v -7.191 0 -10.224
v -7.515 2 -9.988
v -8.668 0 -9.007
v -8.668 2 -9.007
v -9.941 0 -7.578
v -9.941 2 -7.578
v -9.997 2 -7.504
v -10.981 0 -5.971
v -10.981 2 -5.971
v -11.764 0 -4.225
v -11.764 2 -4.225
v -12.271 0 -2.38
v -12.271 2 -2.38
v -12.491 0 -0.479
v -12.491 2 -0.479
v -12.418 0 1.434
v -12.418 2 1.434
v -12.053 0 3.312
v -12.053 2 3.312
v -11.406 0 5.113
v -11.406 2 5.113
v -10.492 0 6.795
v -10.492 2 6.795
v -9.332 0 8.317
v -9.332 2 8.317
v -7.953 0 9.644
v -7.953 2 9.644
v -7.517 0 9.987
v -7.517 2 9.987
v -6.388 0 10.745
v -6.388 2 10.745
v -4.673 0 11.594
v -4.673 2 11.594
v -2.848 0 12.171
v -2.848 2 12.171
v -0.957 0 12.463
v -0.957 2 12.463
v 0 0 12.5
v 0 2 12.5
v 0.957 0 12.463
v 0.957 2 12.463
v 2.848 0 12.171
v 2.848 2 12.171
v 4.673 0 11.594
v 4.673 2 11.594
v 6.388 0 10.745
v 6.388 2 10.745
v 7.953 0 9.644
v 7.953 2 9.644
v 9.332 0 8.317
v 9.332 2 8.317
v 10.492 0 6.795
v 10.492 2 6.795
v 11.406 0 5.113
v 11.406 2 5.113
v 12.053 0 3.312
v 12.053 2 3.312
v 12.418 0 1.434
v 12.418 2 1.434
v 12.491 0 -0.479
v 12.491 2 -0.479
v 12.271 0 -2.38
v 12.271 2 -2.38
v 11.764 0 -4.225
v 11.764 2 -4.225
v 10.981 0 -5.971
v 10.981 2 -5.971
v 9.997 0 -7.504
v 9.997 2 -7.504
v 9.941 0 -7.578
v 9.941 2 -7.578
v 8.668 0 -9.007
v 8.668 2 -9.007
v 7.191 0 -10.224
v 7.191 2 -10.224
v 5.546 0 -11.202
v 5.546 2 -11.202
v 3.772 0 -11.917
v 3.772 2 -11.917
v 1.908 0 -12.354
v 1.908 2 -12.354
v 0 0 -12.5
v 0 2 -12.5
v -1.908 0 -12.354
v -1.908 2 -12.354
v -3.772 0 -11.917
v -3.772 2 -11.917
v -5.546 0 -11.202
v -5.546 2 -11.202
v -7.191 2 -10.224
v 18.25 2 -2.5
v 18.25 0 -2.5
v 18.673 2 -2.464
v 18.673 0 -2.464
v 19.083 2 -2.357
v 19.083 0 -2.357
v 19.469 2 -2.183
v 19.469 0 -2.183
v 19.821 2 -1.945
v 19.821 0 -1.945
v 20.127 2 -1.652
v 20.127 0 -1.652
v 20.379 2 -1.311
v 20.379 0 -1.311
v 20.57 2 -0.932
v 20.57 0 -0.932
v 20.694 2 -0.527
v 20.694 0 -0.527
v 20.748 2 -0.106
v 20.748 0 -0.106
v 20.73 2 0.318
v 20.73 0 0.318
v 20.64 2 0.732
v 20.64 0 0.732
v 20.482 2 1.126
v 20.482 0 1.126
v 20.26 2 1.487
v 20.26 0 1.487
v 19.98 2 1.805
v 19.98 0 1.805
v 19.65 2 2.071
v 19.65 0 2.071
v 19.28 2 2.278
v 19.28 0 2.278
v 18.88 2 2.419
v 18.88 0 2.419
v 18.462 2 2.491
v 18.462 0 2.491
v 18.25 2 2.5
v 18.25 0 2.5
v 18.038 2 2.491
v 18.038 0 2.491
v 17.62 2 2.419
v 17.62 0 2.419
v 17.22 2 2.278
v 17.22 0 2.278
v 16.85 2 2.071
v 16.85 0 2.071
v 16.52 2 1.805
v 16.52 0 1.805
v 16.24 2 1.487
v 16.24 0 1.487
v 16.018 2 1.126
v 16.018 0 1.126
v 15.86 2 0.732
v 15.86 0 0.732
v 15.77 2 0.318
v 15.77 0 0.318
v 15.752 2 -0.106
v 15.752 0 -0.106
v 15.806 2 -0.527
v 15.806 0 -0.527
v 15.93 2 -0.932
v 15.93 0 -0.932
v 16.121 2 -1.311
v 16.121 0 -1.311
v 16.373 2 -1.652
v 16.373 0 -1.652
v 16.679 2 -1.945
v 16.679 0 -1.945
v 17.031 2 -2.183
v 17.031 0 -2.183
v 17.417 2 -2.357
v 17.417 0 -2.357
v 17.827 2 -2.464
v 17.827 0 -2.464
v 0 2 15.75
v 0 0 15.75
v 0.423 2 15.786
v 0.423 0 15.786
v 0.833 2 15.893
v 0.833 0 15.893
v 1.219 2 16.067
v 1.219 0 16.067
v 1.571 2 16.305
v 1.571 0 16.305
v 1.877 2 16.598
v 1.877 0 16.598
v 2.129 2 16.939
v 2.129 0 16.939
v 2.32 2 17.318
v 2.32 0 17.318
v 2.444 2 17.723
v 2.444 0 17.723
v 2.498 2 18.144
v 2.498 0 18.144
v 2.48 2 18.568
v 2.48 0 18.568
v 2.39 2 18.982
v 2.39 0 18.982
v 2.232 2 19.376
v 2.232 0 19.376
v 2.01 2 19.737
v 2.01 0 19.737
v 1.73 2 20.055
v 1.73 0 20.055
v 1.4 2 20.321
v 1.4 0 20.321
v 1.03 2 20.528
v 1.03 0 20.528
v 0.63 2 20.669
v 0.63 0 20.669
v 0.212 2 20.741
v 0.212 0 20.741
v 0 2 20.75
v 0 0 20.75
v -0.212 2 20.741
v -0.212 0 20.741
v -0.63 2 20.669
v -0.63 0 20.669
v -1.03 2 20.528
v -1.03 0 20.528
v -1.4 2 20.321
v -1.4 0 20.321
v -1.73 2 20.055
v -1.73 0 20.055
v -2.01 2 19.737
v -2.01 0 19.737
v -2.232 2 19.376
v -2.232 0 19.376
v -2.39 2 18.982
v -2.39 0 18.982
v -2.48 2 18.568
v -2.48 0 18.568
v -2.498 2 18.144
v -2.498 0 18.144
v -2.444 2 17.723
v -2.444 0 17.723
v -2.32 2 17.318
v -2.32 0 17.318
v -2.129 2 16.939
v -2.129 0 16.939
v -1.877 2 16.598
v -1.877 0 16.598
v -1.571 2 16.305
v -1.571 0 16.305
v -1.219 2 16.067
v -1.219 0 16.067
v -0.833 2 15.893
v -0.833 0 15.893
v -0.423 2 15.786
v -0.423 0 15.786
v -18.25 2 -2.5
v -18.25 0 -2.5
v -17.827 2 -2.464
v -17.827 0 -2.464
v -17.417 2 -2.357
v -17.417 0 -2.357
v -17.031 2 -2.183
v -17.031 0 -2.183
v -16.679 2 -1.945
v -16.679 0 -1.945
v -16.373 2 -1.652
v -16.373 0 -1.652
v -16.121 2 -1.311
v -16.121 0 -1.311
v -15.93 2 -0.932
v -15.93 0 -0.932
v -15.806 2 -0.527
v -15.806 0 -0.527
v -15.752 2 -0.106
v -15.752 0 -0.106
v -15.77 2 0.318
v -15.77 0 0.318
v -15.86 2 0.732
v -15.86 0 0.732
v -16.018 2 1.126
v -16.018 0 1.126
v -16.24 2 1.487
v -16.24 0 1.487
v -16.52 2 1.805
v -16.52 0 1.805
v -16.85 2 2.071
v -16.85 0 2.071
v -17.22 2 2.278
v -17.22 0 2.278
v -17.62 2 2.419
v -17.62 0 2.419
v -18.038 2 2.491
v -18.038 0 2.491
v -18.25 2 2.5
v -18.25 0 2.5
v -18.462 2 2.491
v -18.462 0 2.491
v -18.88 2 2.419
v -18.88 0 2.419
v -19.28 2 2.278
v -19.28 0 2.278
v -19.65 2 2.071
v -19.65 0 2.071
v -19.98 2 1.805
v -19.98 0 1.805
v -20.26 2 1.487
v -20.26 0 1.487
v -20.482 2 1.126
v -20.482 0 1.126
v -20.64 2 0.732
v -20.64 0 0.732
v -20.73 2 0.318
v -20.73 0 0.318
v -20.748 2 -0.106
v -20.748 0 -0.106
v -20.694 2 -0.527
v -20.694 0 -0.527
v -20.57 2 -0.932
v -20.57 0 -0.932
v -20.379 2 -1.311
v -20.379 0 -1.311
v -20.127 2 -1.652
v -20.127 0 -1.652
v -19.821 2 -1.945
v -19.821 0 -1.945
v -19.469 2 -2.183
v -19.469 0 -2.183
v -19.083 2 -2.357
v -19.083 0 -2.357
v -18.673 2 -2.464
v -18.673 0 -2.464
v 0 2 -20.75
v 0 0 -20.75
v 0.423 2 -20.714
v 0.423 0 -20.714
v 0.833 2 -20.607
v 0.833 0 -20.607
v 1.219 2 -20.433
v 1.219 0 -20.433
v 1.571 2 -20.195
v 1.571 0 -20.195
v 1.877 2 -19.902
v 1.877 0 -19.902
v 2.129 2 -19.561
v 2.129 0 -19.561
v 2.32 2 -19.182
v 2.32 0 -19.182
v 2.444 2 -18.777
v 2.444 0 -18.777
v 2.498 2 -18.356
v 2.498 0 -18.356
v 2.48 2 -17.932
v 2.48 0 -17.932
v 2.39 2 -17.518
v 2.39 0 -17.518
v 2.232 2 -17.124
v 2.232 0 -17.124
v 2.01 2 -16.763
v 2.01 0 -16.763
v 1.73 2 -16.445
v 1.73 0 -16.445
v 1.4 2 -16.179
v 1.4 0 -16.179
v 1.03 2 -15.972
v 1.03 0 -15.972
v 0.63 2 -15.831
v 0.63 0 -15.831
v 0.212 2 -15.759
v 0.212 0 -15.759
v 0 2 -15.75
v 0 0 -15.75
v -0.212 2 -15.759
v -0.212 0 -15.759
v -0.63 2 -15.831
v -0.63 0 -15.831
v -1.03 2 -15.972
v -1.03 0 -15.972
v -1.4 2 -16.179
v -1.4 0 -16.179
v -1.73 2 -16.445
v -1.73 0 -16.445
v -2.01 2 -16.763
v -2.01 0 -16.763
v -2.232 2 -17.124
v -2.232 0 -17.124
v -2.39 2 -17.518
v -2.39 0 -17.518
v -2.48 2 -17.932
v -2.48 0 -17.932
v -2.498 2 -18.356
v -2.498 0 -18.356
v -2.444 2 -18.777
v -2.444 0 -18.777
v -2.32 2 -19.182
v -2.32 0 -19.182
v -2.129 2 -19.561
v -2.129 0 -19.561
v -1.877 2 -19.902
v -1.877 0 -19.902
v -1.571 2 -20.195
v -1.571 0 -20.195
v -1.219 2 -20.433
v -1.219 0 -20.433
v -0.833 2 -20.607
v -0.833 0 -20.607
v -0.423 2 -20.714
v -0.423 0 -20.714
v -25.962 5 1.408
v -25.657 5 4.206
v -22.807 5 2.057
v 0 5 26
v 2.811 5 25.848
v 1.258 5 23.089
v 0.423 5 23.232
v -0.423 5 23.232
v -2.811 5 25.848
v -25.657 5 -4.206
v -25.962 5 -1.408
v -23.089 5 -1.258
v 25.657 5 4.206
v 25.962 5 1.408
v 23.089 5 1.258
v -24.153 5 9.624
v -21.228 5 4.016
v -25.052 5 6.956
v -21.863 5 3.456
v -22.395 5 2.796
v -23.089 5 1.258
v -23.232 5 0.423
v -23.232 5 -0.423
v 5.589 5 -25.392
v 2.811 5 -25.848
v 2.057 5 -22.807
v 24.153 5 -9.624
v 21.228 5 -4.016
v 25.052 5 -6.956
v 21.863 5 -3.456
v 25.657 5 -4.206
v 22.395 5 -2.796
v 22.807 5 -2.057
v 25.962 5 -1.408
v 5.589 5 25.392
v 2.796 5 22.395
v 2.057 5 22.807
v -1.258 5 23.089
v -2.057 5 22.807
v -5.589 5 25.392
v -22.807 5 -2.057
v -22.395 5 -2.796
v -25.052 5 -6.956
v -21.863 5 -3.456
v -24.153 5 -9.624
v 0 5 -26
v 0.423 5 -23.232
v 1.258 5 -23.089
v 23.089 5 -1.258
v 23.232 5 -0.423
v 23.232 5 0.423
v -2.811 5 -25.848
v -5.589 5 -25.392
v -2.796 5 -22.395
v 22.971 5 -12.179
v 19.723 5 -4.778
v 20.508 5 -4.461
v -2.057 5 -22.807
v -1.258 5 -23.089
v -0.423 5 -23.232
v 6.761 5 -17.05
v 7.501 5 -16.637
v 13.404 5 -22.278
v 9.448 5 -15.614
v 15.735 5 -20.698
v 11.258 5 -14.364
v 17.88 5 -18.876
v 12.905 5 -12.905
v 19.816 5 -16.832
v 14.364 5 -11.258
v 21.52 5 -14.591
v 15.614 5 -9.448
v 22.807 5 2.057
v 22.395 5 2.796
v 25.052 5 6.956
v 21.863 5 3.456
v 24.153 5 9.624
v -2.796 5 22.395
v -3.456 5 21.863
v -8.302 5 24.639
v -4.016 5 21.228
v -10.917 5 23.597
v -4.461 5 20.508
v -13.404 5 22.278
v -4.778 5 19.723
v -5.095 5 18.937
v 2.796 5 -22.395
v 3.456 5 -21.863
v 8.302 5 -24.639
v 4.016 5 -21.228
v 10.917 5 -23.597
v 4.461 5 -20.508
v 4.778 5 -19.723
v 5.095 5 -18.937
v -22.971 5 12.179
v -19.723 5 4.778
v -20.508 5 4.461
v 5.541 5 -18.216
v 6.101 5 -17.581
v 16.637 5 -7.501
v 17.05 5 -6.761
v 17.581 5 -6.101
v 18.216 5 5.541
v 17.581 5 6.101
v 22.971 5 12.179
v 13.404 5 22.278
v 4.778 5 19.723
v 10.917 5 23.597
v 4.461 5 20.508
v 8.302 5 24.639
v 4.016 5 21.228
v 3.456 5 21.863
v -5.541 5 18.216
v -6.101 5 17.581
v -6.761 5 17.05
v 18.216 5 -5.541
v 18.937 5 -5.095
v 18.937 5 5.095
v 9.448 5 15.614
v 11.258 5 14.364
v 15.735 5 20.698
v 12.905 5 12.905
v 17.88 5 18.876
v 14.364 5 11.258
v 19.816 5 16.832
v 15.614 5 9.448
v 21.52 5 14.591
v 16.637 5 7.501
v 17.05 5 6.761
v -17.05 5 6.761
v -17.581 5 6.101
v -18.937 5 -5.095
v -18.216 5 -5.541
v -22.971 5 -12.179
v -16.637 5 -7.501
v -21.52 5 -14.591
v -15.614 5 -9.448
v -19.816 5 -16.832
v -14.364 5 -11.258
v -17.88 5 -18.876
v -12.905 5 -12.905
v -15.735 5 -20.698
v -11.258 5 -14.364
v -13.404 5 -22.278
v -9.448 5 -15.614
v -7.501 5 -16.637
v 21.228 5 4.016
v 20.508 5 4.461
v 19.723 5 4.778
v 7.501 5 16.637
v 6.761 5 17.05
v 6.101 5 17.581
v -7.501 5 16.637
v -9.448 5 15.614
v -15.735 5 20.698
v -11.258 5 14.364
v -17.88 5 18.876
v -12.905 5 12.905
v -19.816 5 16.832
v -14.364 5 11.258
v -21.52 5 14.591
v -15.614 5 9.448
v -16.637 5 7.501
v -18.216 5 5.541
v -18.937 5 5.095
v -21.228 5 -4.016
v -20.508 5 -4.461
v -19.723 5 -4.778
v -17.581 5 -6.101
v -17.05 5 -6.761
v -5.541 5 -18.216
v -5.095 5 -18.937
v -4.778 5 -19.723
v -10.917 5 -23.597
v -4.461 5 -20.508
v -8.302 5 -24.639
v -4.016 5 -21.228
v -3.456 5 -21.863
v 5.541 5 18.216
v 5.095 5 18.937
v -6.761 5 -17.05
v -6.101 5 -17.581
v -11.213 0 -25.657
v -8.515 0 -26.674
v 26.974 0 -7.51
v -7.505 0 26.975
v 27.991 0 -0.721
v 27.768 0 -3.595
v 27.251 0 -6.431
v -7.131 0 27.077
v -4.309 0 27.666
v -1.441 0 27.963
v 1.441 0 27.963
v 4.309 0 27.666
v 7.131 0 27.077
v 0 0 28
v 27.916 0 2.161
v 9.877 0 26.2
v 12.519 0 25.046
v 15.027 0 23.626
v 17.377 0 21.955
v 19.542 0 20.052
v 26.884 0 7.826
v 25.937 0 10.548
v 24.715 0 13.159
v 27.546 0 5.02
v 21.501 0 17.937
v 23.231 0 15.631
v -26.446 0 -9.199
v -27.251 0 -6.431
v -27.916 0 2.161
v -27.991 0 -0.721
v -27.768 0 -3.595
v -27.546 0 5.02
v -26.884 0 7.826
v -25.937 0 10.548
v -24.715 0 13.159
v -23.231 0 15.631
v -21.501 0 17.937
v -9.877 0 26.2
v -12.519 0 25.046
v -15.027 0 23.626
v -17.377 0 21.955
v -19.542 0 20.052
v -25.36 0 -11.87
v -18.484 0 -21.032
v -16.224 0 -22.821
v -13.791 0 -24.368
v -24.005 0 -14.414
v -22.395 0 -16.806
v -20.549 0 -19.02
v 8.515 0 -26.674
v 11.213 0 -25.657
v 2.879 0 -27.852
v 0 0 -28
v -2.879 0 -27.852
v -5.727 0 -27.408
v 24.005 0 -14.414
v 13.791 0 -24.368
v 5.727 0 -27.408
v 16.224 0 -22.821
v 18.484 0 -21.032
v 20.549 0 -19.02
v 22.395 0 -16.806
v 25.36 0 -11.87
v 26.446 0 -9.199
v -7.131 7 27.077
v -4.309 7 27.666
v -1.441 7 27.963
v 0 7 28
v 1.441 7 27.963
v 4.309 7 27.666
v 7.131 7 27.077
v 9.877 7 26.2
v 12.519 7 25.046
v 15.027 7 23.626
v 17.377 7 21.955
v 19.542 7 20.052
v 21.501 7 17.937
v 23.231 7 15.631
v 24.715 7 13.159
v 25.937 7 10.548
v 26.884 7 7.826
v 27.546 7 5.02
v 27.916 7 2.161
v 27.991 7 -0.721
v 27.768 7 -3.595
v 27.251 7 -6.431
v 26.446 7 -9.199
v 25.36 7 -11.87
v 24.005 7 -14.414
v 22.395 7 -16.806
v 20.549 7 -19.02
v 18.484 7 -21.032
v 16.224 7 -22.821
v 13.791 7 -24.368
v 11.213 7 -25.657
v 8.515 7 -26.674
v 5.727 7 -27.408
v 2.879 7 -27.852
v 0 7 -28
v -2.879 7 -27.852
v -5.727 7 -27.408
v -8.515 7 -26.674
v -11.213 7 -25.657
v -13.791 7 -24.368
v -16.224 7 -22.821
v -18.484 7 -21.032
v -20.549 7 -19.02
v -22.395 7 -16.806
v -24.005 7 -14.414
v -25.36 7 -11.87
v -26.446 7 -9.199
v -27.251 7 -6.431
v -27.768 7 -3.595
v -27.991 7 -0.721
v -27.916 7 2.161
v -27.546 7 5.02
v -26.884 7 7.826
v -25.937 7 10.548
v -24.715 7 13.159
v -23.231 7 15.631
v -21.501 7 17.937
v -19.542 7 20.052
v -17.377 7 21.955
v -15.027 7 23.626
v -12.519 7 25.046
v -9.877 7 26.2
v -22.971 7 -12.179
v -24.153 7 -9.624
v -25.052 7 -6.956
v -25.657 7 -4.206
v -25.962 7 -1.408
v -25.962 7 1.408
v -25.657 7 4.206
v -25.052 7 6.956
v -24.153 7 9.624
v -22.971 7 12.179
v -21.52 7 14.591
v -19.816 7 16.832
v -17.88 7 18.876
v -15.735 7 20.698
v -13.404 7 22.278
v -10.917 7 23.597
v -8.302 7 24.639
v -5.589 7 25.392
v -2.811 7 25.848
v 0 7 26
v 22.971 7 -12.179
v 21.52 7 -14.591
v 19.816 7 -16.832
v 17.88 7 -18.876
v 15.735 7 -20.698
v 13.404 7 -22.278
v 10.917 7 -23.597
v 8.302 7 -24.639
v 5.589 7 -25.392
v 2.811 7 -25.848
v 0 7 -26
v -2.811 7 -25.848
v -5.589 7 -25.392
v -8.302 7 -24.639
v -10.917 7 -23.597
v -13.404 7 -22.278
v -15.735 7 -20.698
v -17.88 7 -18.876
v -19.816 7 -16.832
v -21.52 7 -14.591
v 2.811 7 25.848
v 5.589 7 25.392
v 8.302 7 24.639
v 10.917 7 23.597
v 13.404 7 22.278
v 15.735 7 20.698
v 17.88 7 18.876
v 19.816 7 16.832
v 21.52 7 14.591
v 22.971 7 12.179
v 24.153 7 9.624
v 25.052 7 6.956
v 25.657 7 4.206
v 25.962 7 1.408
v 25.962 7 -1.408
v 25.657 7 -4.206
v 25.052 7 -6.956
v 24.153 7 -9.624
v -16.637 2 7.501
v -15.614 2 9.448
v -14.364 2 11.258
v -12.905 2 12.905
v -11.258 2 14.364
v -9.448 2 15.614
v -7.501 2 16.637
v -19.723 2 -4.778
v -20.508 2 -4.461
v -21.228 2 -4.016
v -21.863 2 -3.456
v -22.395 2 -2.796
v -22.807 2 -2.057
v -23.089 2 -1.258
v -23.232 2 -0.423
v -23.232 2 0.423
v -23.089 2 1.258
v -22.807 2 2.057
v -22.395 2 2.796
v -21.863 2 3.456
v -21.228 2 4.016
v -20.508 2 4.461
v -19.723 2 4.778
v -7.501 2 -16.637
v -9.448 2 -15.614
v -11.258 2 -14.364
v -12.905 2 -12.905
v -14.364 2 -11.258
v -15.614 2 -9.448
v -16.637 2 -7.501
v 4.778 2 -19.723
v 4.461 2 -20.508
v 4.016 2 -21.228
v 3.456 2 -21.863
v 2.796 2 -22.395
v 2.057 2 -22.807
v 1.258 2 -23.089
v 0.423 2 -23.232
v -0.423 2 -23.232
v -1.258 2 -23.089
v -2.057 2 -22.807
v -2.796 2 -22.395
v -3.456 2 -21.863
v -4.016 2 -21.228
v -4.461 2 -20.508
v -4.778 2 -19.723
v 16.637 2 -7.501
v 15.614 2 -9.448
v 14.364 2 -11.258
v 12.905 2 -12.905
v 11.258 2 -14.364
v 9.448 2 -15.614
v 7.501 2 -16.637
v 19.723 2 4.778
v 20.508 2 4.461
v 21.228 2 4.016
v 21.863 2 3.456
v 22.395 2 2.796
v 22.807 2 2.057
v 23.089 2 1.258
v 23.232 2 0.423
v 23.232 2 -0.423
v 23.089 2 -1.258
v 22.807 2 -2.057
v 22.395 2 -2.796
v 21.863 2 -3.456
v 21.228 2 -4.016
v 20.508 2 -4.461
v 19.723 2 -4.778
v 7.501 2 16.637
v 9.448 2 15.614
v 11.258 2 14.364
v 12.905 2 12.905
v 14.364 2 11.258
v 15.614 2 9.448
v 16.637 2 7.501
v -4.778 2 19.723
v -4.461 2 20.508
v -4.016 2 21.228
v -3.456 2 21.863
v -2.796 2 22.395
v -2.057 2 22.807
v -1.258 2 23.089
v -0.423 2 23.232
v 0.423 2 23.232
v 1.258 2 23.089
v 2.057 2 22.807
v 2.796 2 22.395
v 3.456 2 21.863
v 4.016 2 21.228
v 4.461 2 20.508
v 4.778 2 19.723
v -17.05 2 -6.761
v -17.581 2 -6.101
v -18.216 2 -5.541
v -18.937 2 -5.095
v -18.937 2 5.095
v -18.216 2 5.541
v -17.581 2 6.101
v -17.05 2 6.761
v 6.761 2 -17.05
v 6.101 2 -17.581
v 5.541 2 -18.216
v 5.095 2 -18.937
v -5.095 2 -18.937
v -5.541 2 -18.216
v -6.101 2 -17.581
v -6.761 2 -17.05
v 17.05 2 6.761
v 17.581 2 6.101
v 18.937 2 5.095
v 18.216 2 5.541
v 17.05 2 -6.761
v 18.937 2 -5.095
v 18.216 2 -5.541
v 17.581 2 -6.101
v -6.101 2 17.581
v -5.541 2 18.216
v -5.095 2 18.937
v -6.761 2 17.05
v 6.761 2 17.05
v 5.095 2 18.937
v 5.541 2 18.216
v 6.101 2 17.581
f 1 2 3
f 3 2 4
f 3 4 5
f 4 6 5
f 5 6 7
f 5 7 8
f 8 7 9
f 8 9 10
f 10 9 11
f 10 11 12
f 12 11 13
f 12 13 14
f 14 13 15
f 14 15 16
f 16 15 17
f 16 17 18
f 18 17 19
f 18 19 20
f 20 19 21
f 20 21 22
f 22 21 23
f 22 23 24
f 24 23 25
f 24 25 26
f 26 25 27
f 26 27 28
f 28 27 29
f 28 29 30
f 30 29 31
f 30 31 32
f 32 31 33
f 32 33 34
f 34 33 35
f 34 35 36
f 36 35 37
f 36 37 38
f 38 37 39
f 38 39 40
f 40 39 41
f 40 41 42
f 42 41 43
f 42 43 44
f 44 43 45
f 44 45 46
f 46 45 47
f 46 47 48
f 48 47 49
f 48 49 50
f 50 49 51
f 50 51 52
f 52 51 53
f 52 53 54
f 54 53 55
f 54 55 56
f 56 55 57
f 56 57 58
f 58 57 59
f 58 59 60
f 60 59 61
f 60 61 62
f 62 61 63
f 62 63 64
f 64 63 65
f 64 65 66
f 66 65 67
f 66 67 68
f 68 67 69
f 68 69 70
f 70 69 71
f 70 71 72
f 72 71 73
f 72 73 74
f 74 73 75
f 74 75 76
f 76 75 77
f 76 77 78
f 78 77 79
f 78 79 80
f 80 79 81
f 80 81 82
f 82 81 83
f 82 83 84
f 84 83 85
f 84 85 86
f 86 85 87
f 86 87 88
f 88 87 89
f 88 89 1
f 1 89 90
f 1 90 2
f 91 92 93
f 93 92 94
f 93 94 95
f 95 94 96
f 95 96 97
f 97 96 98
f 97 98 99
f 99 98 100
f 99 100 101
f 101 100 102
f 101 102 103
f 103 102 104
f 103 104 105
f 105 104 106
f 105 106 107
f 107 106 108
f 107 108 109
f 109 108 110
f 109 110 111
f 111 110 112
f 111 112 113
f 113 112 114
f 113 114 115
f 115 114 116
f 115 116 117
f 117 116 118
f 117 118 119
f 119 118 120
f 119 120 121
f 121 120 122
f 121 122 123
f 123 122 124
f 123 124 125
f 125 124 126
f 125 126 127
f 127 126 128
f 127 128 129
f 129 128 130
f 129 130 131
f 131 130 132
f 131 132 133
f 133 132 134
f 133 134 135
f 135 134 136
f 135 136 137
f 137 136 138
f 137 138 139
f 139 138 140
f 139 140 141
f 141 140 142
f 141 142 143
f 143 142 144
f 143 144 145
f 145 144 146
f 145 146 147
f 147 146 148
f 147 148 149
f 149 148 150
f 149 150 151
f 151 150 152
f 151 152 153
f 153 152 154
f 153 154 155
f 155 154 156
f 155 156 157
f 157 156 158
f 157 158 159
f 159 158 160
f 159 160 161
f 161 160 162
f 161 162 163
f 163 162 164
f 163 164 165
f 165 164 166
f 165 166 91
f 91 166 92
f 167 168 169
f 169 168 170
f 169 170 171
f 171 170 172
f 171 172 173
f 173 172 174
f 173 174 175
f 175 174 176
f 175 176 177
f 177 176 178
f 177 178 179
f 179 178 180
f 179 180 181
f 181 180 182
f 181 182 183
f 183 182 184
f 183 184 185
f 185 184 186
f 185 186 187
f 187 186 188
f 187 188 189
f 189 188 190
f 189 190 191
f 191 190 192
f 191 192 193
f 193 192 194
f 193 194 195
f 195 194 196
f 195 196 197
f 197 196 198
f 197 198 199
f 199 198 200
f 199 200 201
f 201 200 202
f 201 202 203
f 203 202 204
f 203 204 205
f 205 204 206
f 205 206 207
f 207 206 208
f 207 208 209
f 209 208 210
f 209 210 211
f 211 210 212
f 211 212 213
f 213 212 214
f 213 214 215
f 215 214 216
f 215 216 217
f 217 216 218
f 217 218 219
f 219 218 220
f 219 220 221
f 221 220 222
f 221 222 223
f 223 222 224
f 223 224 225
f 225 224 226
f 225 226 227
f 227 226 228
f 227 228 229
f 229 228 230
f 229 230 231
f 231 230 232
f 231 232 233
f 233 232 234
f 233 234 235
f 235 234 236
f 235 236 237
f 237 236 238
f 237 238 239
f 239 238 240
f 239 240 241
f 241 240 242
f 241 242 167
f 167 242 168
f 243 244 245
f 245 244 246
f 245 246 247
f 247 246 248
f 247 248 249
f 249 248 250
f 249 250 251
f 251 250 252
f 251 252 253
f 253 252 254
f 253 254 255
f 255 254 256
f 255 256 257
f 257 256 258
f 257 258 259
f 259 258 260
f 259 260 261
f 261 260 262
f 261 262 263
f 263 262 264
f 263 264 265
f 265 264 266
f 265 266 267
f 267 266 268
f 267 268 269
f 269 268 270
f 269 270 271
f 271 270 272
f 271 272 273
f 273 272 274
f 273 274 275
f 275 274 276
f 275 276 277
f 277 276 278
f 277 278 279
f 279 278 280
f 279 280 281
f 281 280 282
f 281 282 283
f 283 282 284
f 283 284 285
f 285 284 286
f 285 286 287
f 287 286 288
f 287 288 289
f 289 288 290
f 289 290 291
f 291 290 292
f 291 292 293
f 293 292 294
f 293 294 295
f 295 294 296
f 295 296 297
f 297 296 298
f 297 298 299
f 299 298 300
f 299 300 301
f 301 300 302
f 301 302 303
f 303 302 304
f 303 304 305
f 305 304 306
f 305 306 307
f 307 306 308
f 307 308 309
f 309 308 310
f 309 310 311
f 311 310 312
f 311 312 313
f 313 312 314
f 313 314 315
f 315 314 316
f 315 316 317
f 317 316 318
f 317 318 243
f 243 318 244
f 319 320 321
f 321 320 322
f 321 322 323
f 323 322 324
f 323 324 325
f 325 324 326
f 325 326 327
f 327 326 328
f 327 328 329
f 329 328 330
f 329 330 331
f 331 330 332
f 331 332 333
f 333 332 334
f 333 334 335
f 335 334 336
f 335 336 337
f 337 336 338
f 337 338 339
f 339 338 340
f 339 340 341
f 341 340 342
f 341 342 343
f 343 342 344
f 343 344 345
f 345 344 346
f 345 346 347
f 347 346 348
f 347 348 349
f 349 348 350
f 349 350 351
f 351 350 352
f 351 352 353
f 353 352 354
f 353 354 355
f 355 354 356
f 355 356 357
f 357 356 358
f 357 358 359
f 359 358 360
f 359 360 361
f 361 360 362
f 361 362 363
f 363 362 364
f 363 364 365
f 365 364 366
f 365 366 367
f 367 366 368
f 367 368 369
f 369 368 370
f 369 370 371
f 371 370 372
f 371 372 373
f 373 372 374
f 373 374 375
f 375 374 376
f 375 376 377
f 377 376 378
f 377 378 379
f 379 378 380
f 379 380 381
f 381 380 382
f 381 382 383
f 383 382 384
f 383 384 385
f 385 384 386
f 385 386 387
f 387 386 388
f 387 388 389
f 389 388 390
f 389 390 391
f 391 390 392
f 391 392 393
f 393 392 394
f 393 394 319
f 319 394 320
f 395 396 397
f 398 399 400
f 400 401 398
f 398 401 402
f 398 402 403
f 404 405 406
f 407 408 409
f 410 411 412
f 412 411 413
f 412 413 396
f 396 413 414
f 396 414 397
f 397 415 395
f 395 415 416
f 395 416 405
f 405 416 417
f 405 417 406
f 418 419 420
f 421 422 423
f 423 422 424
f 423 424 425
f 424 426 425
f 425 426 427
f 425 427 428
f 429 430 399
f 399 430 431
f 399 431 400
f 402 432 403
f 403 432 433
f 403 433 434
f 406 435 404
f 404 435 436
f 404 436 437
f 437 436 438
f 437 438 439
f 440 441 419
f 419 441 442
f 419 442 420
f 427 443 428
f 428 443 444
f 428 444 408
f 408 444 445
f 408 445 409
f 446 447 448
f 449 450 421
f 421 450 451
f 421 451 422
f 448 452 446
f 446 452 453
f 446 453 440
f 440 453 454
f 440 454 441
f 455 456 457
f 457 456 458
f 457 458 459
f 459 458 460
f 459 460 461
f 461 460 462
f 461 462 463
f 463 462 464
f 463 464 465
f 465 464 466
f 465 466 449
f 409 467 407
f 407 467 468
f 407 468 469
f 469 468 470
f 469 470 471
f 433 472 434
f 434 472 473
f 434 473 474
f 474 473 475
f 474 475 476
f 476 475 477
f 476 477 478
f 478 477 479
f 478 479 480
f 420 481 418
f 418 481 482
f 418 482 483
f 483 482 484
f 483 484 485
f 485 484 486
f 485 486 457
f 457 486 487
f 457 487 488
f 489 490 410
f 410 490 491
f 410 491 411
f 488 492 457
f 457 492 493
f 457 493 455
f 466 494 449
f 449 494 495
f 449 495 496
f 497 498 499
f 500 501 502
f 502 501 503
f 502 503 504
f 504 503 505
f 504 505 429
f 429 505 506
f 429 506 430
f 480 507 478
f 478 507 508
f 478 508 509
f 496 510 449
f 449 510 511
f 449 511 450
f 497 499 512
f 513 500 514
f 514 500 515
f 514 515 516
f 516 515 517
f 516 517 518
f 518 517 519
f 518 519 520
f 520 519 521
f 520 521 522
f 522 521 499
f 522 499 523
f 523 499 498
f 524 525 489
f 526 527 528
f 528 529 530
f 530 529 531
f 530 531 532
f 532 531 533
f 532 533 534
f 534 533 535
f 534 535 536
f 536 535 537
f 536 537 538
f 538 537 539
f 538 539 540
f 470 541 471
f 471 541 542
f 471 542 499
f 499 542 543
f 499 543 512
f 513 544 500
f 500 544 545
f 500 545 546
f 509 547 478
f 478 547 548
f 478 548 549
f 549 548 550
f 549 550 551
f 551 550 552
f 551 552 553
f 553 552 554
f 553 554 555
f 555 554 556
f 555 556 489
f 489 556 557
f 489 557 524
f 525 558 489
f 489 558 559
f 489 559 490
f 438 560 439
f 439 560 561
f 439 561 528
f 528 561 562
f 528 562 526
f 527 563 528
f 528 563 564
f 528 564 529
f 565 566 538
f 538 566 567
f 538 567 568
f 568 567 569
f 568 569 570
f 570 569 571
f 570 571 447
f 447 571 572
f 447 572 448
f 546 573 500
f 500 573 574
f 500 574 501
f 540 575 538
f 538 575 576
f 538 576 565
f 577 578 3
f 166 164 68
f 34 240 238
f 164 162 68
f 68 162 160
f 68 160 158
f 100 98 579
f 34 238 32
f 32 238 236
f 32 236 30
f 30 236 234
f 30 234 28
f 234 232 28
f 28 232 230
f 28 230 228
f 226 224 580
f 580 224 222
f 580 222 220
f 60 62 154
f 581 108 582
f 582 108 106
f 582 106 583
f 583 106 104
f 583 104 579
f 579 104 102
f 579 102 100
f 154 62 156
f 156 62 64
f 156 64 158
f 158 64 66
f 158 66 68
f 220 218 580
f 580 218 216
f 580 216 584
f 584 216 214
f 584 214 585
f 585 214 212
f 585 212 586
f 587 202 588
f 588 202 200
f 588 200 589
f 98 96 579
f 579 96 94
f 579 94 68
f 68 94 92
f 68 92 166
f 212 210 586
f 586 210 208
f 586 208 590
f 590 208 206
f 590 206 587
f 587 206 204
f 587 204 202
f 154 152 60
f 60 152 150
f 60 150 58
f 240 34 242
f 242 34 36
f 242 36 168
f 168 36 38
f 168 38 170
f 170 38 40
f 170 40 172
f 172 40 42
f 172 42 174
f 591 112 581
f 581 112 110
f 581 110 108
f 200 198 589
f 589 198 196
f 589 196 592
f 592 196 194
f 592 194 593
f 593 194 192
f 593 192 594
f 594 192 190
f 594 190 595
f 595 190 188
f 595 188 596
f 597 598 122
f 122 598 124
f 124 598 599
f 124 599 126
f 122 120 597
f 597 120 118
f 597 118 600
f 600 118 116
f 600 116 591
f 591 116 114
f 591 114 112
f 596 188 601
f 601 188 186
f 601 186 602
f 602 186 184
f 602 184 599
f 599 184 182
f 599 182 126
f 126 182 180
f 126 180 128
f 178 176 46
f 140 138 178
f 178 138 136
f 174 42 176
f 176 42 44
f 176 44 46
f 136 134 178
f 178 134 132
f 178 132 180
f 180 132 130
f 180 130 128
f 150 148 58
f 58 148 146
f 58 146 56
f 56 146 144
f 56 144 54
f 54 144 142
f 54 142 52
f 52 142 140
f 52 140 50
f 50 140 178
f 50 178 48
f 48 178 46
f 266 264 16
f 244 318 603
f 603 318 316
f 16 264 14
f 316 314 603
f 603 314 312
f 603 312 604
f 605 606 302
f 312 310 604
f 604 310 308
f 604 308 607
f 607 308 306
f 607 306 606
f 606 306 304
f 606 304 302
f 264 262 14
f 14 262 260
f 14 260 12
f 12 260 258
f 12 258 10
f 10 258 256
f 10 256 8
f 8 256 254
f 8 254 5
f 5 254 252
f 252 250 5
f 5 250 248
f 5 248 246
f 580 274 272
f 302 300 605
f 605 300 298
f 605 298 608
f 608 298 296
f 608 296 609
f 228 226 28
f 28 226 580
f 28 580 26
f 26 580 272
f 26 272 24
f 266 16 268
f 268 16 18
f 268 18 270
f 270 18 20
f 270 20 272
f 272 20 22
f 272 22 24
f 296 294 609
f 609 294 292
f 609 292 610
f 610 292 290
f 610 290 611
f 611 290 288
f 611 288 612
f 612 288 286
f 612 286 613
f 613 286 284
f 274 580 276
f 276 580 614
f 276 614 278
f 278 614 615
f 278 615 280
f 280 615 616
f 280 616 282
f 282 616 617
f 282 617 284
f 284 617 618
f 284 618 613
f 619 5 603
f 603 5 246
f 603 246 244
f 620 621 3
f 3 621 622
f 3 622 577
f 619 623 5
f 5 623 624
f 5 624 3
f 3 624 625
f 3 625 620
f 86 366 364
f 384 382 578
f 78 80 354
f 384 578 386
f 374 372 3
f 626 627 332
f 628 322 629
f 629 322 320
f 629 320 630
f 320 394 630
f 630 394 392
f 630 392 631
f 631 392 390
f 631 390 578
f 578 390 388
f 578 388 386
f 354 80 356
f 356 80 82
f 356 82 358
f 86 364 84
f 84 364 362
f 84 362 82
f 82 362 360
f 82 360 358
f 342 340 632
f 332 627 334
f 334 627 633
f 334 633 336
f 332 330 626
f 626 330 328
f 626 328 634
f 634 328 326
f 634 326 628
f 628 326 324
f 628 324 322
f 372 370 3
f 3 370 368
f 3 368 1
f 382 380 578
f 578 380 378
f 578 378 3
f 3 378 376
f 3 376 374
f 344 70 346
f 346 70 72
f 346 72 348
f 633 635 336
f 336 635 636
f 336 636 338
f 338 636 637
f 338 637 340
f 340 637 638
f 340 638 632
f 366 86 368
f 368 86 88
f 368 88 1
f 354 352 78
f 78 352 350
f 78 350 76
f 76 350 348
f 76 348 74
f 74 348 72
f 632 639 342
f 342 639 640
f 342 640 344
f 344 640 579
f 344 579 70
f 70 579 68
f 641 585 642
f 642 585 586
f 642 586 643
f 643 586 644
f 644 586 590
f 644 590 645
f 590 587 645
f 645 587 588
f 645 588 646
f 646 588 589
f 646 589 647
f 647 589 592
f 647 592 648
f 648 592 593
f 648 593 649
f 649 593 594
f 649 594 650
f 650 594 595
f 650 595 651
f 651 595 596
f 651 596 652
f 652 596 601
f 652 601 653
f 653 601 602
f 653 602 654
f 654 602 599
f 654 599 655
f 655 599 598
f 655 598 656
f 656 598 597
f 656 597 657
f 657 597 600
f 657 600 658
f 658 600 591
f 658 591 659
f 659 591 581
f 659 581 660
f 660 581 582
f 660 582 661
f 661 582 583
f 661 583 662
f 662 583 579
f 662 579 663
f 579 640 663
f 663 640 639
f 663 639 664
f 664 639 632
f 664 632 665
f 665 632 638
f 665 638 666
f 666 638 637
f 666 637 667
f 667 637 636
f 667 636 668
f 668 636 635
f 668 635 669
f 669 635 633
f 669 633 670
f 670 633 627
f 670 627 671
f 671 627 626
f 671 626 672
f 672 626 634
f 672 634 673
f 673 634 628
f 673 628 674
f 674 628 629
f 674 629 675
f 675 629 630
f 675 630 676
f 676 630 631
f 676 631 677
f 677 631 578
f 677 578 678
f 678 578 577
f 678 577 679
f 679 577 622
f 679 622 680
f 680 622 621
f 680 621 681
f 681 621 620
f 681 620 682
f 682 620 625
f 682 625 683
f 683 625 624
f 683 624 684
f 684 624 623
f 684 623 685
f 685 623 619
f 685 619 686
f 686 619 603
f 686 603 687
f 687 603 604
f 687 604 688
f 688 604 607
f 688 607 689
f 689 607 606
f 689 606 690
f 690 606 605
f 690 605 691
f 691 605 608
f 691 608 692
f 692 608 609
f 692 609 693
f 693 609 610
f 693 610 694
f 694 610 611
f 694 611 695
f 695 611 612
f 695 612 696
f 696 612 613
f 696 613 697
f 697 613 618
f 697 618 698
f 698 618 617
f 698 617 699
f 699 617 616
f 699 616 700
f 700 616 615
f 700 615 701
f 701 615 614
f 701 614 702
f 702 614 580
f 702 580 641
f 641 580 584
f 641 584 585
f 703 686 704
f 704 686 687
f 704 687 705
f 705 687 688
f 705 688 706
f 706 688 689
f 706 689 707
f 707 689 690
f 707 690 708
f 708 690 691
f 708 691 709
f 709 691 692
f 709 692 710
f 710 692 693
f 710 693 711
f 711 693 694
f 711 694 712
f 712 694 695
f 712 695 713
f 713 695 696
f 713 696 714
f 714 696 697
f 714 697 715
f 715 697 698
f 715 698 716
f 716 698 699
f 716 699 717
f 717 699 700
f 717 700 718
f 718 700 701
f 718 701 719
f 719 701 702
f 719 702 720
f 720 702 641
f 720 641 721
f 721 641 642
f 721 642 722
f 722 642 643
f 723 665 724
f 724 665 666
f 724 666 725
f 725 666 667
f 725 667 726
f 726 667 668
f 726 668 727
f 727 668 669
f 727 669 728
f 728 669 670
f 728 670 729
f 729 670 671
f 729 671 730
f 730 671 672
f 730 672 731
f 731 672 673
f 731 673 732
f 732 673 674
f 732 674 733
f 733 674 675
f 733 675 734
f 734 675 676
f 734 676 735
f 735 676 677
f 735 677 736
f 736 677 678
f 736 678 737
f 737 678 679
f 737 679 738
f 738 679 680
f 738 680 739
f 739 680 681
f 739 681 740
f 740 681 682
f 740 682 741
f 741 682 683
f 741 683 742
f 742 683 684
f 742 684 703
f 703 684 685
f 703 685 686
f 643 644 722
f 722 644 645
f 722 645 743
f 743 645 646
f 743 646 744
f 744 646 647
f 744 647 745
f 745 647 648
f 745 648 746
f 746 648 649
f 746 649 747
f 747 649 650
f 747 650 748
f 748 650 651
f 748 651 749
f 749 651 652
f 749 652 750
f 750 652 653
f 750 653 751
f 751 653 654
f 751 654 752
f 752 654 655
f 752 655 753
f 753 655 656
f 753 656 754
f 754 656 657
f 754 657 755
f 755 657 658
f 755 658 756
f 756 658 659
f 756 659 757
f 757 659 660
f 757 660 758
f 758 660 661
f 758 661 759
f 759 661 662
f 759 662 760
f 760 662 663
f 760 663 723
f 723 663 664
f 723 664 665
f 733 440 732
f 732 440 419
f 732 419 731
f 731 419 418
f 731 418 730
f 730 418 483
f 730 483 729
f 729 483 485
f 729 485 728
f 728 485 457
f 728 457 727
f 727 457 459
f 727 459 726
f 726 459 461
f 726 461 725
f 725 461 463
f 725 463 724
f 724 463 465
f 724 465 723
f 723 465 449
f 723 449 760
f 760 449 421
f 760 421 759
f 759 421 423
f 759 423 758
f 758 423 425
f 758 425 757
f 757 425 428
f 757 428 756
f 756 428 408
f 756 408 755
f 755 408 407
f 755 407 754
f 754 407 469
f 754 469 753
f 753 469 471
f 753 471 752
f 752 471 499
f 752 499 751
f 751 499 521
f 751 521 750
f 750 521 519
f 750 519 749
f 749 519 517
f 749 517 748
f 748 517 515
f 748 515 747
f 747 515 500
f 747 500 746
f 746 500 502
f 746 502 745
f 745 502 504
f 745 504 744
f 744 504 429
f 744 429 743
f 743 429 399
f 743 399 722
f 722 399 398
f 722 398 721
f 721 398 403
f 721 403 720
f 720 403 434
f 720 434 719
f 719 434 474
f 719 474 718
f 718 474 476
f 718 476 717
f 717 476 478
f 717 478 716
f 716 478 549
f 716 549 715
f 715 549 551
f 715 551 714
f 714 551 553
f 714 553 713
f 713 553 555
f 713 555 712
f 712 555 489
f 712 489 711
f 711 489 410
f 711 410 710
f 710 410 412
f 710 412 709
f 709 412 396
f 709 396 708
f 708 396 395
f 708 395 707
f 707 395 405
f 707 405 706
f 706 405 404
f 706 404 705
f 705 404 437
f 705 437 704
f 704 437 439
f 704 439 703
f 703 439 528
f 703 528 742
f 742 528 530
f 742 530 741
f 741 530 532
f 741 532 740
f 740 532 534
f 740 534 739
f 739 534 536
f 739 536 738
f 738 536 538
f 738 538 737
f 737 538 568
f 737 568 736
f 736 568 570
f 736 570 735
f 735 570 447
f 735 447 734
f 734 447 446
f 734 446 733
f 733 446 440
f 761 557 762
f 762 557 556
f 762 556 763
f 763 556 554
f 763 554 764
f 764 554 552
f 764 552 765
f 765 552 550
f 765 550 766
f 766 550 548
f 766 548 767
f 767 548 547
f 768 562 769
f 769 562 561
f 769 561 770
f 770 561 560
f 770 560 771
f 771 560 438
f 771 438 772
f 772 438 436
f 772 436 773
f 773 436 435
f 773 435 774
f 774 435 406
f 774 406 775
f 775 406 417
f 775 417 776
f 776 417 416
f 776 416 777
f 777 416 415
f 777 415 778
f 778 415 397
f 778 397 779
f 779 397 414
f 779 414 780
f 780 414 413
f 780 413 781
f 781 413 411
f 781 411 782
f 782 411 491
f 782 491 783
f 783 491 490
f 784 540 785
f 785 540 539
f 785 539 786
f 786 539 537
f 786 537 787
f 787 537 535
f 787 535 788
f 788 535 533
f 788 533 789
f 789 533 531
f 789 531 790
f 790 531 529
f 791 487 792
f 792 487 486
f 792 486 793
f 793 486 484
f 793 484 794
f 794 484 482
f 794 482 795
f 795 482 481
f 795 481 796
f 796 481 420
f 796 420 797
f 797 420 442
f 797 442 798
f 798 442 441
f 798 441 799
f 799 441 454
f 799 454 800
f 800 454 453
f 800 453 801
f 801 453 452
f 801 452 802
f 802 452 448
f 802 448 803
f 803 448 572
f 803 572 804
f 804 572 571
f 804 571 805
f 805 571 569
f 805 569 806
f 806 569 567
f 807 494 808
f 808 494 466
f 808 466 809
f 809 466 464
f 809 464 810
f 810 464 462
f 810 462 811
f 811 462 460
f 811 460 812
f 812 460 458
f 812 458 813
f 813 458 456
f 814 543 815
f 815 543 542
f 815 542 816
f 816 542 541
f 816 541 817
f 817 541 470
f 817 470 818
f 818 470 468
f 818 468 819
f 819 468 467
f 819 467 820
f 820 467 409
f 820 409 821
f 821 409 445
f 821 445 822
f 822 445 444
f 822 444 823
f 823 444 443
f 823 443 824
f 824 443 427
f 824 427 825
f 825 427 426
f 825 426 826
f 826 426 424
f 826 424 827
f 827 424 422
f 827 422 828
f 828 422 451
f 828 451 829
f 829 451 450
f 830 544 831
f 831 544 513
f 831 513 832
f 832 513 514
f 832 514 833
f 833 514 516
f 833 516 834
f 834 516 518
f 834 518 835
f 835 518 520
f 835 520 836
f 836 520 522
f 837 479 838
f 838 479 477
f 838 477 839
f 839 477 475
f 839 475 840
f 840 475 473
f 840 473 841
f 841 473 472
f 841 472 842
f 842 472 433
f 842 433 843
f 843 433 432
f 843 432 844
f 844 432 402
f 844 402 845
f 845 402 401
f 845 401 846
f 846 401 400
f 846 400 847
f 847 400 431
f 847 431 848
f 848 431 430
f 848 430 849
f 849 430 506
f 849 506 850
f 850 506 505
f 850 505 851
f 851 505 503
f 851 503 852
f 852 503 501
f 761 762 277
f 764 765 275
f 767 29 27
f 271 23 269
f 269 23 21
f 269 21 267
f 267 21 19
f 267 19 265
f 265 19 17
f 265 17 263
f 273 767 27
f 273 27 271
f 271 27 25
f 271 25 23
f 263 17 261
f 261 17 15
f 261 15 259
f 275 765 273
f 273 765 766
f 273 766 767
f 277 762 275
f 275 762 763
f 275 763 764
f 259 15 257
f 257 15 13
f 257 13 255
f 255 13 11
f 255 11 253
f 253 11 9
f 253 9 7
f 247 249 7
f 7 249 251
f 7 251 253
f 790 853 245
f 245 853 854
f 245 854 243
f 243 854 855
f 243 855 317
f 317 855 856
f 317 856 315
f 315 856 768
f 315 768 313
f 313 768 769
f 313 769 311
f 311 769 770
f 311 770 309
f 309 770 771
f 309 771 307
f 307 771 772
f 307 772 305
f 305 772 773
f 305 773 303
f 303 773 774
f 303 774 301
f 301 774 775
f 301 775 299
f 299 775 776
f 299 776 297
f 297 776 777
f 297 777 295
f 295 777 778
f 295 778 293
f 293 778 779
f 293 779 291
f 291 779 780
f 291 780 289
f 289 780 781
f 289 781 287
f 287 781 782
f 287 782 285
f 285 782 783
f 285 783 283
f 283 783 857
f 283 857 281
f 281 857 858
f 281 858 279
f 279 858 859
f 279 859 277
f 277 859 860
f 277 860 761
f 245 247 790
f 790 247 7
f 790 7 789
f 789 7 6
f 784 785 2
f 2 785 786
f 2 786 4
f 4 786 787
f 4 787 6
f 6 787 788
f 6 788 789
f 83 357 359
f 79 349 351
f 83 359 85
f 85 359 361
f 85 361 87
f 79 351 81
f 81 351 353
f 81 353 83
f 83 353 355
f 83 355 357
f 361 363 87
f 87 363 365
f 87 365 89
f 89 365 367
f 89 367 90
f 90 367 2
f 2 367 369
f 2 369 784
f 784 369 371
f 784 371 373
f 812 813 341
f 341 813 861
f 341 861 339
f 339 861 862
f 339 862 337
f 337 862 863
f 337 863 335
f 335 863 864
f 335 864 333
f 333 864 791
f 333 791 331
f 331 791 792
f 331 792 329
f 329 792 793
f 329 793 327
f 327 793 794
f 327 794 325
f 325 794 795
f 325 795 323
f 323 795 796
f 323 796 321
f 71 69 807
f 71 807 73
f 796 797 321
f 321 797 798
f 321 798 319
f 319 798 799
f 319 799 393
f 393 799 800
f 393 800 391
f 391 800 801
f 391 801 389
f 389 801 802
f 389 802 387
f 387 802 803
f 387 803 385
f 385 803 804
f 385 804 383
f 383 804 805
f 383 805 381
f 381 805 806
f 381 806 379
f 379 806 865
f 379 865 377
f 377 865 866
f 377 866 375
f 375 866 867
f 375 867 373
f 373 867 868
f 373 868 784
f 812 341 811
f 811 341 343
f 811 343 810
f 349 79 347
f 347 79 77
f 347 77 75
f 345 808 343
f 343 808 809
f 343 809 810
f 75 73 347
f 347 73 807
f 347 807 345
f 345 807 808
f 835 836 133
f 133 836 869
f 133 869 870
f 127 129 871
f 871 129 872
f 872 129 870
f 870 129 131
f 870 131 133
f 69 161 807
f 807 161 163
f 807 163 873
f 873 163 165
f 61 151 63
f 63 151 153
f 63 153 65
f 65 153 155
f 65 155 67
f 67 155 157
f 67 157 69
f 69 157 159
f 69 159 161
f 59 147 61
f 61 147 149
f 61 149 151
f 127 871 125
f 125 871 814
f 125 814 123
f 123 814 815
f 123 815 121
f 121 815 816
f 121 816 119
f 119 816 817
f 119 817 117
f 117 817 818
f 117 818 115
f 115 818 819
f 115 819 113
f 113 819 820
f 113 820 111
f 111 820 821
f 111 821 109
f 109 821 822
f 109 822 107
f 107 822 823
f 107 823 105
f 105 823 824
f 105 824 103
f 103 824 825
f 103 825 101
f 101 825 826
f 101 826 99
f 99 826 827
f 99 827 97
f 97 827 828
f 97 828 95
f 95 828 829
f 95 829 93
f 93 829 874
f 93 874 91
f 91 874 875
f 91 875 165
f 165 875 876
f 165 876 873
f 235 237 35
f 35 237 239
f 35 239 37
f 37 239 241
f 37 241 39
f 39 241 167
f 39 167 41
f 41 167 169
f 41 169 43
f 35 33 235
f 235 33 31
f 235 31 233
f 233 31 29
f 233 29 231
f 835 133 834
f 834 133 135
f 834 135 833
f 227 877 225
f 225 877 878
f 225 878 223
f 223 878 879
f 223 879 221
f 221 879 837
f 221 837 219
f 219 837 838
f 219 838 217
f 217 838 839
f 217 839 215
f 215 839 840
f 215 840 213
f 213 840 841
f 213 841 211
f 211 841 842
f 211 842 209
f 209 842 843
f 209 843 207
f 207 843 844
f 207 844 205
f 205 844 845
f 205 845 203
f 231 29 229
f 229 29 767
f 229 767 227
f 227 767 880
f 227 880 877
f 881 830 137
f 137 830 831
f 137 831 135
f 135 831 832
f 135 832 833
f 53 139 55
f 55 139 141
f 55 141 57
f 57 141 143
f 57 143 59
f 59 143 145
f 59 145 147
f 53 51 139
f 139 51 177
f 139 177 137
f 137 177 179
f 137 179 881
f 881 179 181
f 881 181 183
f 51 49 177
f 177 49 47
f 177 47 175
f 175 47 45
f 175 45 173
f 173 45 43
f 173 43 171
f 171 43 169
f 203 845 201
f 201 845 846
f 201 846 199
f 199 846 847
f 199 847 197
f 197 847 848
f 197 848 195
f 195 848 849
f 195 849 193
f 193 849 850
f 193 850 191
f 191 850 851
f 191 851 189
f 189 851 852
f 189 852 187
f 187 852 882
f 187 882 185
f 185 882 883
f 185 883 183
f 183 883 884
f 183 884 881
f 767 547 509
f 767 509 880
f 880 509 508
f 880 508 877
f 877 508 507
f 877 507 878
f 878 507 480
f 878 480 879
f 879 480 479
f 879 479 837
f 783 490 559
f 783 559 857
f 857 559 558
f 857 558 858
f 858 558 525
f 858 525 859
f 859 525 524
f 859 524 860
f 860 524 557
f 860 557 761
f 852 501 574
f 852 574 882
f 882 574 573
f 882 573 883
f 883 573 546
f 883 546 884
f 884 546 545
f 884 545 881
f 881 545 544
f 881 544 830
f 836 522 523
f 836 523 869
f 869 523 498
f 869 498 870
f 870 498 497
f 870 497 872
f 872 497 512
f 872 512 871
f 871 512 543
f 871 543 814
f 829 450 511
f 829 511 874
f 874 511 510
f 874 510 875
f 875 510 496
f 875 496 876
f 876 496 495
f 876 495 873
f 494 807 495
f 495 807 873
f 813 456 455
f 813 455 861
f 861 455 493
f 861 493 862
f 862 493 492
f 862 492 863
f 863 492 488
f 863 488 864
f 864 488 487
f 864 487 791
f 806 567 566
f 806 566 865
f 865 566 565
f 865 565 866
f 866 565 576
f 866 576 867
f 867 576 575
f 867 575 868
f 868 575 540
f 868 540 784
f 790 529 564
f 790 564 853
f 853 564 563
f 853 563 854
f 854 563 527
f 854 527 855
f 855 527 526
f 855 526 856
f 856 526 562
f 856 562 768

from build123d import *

# Parameters (mm, degrees)
SKETCH1_R           = 28
SKETCH1_R_2         = 12.5
SKETCH1_R_3         = 2.5
BOSS_EXTRUDE1_DEPTH = 5
SKETCH2_R           = 28
SKETCH2_R_2         = 26
BOSS_EXTRUDE2_DEPTH = 2
CUT_EXTRUDE1_DEPTH  = 3
FILLET1_R           = 5


with BuildPart() as part:
    # Sketch1 → Boss-Extrude1 (new body)
    with BuildSketch(Plane(origin=(0, 0, 0), x_dir=(1, 0, 0), z_dir=(0, 1, 0))):
        with Locations(Location((0, 0, 0), (0, 0, 270))):
            Circle(SKETCH1_R)
        with Locations(Location((0, 0, 0), (0, 0, 270))):
            Circle(SKETCH1_R_2, mode=Mode.SUBTRACT)
        with Locations(Location((18.25, 0, 0), (0, 0, 270))):
            Circle(SKETCH1_R_3, mode=Mode.SUBTRACT)
        with Locations(Location((0, -18.25, 0), (0, 0, 270))):
            Circle(SKETCH1_R_3, mode=Mode.SUBTRACT)
        with Locations(Location((-18.25, 0, 0), (0, 0, 270))):
            Circle(SKETCH1_R_3, mode=Mode.SUBTRACT)
        with Locations(Location((0, 18.25, 0), (0, 0, 270))):
            Circle(SKETCH1_R_3, mode=Mode.SUBTRACT)
    extrude(amount=BOSS_EXTRUDE1_DEPTH)

    # Sketch2 → Boss-Extrude2 (add)
    with BuildSketch(Plane(origin=(0, 5, 0), x_dir=(1, 0, 0), z_dir=(0, 1, 0))):
        with Locations(Location((0, 0, 0), (0, 0, 270))):
            Circle(SKETCH2_R)
        with Locations(Location((0, 0, 0), (0, 0, 270))):
            Circle(SKETCH2_R_2, mode=Mode.SUBTRACT)
    extrude(amount=BOSS_EXTRUDE2_DEPTH)

    # Sketch4 → Cut-Extrude1 (cut)
    with BuildSketch(Plane(origin=(0, 5, 0), x_dir=(1, 0, 0), z_dir=(0, 1, 0))):
        with BuildLine():
            ThreePointArc((4.95286471, 17.565068493), (0, 23.25), (-4.95286471, 17.565068493))
            ThreePointArc((-4.95286471, 17.565068493), (-12.904698757, 12.904698757), (-17.565068493, 4.95286471))
            ThreePointArc((-17.565068493, 4.95286471), (-23.25, 0), (-17.565068493, -4.95286471))
            ThreePointArc((-17.565068493, -4.95286471), (-12.904698757, -12.904698757), (-4.95286471, -17.565068493))
            ThreePointArc((-4.95286471, -17.565068493), (0, -23.25), (4.95286471, -17.565068493))
            ThreePointArc((4.95286471, -17.565068493), (12.904698757, -12.904698757), (17.565068493, -4.95286471))
            ThreePointArc((17.565068493, -4.95286471), (23.25, 0), (17.565068493, 4.95286471))
            ThreePointArc((17.565068493, 4.95286471), (12.904698757, 12.904698757), (4.95286471, 17.565068493))
        make_face()
    extrude(amount=-CUT_EXTRUDE1_DEPTH, mode=Mode.SUBTRACT)

    # Fillet1
    fillet1_edges = [part.edges().sort_by_distance(p)[0] for p in [
        (-4.95286471, 3.5, 17.565068493),
        (-17.565068493, 3.5, 4.95286471),
        (-17.565068493, 3.5, -4.95286471),
        (-4.95286471, 3.5, -17.565068493),
        (4.95286471, 3.5, -17.565068493),
        (17.565068493, 3.5, -4.95286471),
        (17.565068493, 3.5, 4.95286471),
        (4.95286471, 3.5, 17.565068493),
    ]]
    fillet(fillet1_edges, radius=FILLET1_R)


solid = part.part
